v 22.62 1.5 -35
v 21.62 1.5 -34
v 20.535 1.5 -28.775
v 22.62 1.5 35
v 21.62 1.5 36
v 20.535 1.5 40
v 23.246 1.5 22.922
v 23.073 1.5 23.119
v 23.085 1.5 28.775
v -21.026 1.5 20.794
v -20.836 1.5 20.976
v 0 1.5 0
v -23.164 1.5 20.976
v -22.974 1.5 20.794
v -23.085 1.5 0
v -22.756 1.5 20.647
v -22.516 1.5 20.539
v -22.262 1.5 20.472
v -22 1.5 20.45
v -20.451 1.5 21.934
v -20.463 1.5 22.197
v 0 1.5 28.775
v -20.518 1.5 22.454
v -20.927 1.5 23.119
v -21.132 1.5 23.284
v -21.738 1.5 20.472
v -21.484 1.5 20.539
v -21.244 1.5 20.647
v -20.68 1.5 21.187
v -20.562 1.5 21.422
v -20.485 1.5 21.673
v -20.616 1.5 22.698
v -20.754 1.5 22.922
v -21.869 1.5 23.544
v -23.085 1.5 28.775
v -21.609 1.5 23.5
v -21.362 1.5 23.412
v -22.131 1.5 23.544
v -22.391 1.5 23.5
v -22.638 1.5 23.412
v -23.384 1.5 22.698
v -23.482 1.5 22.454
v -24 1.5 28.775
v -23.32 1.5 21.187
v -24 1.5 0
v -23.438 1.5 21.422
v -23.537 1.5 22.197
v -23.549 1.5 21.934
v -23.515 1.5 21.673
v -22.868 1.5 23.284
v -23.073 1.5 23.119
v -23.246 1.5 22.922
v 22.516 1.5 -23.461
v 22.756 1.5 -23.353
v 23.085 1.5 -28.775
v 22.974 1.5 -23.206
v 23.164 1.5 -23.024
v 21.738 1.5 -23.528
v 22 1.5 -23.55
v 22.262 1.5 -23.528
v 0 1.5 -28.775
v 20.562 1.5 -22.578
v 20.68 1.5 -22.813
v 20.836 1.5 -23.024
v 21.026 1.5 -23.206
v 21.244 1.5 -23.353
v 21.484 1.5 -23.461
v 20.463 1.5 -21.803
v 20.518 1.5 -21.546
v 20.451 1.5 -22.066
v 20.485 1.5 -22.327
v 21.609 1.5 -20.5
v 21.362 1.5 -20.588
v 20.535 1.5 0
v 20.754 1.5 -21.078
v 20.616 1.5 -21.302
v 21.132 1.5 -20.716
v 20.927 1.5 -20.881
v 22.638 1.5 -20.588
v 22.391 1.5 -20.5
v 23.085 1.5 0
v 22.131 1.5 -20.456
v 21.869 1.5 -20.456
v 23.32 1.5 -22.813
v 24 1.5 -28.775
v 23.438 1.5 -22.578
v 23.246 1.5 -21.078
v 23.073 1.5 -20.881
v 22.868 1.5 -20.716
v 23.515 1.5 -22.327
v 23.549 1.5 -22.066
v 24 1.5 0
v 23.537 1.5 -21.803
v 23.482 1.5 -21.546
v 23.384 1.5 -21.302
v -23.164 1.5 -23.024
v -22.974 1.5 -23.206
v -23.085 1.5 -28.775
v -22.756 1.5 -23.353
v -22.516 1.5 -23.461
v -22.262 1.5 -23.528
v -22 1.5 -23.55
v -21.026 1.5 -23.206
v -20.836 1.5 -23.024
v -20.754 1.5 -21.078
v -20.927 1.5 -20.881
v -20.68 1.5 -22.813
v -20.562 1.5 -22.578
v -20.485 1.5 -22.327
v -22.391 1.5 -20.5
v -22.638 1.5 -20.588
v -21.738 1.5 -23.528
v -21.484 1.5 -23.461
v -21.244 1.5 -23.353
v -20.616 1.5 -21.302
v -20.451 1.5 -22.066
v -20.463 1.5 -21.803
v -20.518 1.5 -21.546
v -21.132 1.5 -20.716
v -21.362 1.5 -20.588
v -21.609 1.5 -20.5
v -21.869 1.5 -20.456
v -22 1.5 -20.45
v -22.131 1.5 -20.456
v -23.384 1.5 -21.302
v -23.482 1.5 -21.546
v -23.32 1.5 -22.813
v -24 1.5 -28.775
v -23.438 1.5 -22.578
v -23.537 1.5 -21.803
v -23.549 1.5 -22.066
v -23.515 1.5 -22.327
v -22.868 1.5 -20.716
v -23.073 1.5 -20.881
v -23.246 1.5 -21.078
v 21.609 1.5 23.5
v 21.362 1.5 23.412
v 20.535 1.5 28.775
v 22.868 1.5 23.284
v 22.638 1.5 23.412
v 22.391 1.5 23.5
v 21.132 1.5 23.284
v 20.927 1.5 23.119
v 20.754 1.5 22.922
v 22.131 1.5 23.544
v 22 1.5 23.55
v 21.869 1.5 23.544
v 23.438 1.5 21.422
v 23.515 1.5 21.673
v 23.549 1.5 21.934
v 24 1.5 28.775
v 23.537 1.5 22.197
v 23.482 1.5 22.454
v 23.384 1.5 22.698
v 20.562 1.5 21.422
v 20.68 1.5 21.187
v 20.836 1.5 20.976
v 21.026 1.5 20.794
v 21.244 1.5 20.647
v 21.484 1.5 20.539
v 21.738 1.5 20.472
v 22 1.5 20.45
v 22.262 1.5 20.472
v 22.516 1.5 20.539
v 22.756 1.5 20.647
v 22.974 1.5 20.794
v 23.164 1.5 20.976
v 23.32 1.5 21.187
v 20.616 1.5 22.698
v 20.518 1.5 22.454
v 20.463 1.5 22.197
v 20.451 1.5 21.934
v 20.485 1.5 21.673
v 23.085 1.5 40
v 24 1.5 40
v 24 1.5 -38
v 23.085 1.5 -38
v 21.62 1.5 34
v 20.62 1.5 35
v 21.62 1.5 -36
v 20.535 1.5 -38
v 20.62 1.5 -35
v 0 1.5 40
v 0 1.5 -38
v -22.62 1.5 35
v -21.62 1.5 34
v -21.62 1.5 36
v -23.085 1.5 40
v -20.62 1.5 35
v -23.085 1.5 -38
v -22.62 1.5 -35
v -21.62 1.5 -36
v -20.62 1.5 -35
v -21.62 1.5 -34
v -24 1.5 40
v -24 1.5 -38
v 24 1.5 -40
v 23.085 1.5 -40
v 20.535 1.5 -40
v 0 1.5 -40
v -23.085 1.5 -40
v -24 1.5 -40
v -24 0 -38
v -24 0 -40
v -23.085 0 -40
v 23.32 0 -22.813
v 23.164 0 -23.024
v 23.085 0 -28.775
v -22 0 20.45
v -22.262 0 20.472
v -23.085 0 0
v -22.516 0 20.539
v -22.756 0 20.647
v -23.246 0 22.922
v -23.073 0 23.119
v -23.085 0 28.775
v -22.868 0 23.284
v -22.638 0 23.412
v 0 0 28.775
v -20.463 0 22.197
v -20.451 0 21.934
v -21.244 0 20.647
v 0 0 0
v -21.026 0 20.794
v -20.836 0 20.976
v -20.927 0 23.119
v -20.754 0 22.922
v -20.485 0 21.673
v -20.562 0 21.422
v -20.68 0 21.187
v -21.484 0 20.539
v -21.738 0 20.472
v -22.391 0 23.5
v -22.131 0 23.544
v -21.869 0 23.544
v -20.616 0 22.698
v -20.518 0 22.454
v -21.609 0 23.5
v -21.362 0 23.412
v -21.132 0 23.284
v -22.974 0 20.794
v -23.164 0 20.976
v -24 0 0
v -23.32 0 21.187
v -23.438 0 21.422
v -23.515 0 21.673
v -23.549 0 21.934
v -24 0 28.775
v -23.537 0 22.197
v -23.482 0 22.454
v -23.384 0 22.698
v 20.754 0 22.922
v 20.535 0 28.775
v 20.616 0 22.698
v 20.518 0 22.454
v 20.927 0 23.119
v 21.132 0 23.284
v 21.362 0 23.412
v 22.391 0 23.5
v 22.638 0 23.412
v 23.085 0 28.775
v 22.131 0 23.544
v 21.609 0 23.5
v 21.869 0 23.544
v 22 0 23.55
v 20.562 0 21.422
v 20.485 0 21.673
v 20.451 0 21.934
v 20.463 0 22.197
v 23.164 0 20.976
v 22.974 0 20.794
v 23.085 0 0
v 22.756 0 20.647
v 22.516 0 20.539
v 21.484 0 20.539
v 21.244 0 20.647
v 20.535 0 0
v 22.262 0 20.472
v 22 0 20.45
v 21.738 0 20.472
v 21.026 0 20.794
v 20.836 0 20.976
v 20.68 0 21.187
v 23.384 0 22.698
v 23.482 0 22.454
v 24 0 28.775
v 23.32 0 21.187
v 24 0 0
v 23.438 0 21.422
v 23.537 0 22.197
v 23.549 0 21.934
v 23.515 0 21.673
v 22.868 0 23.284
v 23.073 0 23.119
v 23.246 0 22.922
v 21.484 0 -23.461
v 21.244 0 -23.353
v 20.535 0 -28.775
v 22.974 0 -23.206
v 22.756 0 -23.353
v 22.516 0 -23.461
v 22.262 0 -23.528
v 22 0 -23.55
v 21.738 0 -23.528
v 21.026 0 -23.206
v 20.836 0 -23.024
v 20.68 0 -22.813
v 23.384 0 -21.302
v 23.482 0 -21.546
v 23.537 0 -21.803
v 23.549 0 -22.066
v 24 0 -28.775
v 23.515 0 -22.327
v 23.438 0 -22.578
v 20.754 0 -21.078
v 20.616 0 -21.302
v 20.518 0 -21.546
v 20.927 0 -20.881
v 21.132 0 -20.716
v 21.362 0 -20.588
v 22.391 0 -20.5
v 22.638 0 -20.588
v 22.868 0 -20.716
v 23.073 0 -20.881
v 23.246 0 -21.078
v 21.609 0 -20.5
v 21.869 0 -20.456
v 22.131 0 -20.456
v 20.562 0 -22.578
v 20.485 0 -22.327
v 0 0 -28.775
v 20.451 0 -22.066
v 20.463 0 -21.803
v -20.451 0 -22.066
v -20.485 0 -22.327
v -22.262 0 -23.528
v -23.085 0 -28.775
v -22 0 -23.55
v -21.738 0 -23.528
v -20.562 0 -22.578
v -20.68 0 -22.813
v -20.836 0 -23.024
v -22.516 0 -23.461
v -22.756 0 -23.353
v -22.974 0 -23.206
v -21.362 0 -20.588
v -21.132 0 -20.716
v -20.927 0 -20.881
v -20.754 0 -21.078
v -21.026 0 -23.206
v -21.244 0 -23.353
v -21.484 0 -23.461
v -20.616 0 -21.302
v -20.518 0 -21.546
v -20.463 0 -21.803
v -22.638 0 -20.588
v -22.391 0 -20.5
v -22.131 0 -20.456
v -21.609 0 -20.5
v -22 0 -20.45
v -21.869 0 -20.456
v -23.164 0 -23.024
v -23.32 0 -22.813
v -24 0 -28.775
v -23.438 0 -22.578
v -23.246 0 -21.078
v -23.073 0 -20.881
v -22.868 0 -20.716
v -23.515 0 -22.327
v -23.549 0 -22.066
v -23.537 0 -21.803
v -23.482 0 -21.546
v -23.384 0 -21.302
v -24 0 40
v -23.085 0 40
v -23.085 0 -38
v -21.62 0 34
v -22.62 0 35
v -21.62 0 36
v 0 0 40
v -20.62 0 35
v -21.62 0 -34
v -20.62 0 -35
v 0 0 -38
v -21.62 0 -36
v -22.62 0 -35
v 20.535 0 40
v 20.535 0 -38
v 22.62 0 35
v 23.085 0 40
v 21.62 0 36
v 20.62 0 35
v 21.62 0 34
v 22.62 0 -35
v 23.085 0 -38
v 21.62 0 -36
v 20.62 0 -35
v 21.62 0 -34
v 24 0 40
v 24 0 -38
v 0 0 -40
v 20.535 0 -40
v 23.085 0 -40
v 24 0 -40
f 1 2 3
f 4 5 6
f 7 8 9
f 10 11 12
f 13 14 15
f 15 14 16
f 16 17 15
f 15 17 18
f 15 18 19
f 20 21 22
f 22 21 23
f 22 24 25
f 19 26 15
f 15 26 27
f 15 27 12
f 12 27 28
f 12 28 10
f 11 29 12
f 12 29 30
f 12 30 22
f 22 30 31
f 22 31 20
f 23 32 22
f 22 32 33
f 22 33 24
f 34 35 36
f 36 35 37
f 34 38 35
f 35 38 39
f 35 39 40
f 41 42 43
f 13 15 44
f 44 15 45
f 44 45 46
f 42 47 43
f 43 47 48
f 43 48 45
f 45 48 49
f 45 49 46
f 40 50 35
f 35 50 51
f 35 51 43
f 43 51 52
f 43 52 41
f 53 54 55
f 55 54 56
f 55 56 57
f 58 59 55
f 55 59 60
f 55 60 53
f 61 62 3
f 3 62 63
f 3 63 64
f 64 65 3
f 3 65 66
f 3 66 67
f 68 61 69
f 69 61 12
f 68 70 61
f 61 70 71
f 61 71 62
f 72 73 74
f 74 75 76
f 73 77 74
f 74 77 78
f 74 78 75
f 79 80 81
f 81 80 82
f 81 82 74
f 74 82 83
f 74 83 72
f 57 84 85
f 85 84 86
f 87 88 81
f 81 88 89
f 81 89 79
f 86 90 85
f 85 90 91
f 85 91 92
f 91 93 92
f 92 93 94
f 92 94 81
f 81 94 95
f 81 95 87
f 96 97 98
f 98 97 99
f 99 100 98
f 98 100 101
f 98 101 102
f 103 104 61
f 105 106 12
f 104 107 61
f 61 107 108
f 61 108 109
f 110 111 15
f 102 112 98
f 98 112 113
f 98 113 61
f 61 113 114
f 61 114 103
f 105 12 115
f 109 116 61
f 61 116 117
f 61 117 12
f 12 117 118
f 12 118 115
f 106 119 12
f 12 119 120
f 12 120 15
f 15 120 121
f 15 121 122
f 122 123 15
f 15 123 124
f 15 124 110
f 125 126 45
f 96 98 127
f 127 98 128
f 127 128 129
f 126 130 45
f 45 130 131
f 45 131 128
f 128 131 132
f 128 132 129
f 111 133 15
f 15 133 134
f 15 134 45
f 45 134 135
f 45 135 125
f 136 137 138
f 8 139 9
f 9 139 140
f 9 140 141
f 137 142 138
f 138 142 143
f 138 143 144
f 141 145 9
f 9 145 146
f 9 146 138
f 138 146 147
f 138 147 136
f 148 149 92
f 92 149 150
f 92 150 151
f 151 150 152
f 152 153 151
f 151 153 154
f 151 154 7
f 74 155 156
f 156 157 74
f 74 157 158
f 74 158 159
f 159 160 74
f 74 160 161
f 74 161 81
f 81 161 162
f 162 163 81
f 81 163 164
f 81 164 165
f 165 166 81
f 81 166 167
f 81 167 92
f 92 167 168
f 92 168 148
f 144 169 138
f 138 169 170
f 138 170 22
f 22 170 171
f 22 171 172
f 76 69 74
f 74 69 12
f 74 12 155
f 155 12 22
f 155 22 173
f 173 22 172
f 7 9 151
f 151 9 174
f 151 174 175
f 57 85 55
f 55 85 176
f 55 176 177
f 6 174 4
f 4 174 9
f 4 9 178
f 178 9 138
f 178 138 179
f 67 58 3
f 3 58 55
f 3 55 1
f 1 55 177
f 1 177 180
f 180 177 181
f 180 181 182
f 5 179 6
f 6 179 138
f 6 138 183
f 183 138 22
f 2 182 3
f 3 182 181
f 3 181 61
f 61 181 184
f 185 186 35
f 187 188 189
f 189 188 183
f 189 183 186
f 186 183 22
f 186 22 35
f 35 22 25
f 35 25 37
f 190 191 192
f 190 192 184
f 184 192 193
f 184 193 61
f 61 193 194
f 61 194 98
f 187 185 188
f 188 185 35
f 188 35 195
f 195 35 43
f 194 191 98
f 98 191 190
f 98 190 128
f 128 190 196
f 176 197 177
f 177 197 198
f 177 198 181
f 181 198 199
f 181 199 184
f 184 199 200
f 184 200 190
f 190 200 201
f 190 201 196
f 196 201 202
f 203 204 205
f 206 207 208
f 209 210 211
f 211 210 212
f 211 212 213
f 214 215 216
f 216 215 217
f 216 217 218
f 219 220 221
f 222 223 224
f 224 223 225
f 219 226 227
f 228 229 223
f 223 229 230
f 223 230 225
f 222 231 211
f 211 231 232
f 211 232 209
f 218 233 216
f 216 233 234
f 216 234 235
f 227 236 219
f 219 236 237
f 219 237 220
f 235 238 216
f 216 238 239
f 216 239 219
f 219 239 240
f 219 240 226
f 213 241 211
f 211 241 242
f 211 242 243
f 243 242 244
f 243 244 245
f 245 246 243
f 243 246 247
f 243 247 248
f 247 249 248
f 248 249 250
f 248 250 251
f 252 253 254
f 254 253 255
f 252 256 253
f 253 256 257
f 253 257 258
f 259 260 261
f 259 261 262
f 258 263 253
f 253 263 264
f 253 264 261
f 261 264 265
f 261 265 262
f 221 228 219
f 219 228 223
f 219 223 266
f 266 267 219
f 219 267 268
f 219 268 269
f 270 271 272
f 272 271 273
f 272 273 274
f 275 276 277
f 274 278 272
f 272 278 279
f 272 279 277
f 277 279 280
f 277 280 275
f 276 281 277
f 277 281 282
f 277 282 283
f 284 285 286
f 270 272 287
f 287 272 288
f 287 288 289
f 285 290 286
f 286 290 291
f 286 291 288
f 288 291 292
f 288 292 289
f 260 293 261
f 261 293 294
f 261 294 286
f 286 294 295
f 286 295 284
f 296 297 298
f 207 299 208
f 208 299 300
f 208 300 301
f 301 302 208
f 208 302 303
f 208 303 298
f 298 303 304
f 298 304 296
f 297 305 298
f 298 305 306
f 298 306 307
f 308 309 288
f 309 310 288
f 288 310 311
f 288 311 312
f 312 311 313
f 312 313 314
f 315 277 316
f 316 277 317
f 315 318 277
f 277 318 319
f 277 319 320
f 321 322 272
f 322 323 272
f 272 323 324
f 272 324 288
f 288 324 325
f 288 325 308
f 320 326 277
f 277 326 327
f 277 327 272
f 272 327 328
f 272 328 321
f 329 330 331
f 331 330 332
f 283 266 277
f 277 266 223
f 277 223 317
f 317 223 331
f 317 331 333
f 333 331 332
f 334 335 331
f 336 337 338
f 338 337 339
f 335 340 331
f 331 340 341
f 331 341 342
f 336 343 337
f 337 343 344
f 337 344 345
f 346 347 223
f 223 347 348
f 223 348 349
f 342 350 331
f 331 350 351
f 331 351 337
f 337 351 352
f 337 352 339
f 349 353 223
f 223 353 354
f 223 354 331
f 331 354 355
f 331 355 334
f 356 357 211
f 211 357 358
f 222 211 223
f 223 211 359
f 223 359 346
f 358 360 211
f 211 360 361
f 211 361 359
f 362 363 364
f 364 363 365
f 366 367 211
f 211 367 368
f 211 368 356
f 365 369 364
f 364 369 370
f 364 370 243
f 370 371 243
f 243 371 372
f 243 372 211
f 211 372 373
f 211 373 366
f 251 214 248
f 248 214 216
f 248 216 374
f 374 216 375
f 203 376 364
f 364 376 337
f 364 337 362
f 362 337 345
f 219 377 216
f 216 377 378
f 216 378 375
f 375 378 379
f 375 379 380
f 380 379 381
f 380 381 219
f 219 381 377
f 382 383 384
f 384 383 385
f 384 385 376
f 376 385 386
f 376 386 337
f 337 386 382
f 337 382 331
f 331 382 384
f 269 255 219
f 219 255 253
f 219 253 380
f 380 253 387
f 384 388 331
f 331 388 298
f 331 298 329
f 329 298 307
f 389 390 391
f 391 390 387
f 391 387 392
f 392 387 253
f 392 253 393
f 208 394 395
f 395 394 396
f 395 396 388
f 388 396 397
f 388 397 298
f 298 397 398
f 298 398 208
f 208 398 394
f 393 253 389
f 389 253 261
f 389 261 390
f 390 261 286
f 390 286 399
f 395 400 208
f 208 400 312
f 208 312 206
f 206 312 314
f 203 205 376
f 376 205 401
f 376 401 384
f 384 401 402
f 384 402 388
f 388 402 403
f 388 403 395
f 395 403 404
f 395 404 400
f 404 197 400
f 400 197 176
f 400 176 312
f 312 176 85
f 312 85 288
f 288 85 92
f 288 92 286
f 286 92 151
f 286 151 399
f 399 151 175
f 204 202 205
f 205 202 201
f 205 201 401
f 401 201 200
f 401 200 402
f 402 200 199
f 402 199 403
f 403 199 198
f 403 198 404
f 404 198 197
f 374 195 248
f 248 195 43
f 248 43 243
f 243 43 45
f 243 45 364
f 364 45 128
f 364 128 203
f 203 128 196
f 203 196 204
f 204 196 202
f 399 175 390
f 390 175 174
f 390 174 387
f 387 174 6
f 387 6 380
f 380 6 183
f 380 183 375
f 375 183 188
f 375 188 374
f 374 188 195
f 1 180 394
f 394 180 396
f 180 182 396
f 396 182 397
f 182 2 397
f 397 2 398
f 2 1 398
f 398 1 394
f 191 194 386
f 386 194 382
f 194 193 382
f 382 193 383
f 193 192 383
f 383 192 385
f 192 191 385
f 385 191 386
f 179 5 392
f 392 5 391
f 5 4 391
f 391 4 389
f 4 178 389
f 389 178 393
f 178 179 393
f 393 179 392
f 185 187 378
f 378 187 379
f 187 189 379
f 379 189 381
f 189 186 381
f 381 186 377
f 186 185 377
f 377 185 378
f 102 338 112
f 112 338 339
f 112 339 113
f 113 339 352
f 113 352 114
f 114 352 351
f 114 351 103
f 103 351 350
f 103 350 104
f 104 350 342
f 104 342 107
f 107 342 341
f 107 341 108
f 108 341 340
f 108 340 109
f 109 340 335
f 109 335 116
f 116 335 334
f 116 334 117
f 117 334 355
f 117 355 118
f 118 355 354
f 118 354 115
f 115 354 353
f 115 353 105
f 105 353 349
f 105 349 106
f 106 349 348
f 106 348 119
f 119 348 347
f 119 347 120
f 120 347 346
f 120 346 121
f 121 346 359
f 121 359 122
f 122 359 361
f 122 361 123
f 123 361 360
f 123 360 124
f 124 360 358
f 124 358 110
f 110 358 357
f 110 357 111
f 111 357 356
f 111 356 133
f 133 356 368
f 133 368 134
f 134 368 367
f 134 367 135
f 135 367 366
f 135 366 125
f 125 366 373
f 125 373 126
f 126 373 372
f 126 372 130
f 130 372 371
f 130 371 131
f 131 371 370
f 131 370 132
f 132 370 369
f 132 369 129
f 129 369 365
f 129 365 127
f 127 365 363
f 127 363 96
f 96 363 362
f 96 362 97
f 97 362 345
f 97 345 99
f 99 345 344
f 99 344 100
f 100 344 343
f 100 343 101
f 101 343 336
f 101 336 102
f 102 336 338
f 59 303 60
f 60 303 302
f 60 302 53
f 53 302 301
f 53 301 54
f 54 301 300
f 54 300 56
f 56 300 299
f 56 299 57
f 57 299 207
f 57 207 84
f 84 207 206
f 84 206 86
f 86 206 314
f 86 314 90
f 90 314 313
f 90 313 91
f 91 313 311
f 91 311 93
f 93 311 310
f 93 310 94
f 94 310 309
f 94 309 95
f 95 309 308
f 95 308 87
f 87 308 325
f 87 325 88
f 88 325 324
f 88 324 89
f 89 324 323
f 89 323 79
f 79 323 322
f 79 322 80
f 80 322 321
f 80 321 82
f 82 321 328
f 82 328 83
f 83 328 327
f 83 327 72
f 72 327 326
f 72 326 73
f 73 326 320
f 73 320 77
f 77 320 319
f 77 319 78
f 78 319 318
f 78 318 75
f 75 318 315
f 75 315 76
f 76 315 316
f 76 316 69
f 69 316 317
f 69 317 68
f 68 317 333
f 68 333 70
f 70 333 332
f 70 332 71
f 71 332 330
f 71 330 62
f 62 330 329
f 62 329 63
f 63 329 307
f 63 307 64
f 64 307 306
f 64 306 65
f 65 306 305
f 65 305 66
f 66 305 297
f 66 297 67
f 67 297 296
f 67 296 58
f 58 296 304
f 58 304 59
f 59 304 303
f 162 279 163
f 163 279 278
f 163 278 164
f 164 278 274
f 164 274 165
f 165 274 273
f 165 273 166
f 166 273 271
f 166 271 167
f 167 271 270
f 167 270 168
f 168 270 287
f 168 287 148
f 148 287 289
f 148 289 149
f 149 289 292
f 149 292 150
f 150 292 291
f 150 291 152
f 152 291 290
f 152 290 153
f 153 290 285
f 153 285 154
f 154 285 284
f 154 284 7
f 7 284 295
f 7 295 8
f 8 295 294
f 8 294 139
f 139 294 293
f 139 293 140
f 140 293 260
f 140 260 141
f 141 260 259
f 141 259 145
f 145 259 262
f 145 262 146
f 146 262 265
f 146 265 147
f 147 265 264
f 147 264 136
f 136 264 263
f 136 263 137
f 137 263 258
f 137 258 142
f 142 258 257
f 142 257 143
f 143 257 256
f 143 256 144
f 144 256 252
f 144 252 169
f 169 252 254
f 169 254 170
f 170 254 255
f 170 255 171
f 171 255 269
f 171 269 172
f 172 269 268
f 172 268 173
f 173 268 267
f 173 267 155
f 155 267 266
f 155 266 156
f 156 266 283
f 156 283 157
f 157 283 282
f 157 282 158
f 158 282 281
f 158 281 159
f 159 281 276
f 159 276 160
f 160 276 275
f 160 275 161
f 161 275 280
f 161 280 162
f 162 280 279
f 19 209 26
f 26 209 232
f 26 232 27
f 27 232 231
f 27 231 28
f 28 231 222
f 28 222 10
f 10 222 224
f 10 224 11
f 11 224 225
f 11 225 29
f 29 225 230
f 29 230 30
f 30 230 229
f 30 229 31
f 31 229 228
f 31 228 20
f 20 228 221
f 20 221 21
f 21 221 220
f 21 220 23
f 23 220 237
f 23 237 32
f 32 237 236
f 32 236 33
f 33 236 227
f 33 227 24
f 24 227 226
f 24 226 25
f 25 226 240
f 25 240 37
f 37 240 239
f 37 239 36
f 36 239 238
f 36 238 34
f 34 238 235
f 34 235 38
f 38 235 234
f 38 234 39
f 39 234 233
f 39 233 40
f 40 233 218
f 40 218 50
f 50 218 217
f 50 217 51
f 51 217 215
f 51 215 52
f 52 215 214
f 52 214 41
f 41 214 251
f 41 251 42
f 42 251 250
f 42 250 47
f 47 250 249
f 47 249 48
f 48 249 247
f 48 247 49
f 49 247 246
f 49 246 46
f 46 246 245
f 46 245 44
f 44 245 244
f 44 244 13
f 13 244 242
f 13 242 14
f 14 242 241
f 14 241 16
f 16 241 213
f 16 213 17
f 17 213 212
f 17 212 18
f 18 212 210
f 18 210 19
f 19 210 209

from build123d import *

# Parameters (mm, degrees)
SKETCH_1_W      = 48
SKETCH_1_H      = 80
SKETCH_1_R      = 1.55
EXTRUDE_1_DEPTH = 1.5


with BuildPart() as part:
    # 草图1 → 凸台-拉伸1 (new body)
    with BuildSketch(Plane(origin=(0, 0, 0), x_dir=(1, 0, 0), z_dir=(0, 1, 0))):
        Rectangle(SKETCH_1_W, SKETCH_1_H)
        with Locations(Location((-22, 22, 0), (0, 0, 270))):
            Circle(SKETCH_1_R, mode=Mode.SUBTRACT)
        with Locations(Location((22, 22, 0), (0, 0, 90))):
            Circle(SKETCH_1_R, mode=Mode.SUBTRACT)
        with Locations(Location((22, -22, 0), (0, 0, 270))):
            Circle(SKETCH_1_R, mode=Mode.SUBTRACT)
        with Locations(Location((-22, -22, 0), (0, 0, 90))):
            Circle(SKETCH_1_R, mode=Mode.SUBTRACT)
        Polygon((22.62, 35), (21.62, 34), (20.62, 35), (21.62, 36), align=None, mode=Mode.SUBTRACT)
        Polygon((-21.62, 34), (-20.62, 35), (-21.62, 36), (-22.62, 35), align=None, mode=Mode.SUBTRACT)
        Polygon((21.62, -36), (22.62, -35), (21.62, -34), (20.62, -35), align=None, mode=Mode.SUBTRACT)
        Polygon((-22.62, -35), (-21.62, -34), (-20.62, -35), (-21.62, -36), align=None, mode=Mode.SUBTRACT)
    extrude(amount=EXTRUDE_1_DEPTH)


solid = part.part
